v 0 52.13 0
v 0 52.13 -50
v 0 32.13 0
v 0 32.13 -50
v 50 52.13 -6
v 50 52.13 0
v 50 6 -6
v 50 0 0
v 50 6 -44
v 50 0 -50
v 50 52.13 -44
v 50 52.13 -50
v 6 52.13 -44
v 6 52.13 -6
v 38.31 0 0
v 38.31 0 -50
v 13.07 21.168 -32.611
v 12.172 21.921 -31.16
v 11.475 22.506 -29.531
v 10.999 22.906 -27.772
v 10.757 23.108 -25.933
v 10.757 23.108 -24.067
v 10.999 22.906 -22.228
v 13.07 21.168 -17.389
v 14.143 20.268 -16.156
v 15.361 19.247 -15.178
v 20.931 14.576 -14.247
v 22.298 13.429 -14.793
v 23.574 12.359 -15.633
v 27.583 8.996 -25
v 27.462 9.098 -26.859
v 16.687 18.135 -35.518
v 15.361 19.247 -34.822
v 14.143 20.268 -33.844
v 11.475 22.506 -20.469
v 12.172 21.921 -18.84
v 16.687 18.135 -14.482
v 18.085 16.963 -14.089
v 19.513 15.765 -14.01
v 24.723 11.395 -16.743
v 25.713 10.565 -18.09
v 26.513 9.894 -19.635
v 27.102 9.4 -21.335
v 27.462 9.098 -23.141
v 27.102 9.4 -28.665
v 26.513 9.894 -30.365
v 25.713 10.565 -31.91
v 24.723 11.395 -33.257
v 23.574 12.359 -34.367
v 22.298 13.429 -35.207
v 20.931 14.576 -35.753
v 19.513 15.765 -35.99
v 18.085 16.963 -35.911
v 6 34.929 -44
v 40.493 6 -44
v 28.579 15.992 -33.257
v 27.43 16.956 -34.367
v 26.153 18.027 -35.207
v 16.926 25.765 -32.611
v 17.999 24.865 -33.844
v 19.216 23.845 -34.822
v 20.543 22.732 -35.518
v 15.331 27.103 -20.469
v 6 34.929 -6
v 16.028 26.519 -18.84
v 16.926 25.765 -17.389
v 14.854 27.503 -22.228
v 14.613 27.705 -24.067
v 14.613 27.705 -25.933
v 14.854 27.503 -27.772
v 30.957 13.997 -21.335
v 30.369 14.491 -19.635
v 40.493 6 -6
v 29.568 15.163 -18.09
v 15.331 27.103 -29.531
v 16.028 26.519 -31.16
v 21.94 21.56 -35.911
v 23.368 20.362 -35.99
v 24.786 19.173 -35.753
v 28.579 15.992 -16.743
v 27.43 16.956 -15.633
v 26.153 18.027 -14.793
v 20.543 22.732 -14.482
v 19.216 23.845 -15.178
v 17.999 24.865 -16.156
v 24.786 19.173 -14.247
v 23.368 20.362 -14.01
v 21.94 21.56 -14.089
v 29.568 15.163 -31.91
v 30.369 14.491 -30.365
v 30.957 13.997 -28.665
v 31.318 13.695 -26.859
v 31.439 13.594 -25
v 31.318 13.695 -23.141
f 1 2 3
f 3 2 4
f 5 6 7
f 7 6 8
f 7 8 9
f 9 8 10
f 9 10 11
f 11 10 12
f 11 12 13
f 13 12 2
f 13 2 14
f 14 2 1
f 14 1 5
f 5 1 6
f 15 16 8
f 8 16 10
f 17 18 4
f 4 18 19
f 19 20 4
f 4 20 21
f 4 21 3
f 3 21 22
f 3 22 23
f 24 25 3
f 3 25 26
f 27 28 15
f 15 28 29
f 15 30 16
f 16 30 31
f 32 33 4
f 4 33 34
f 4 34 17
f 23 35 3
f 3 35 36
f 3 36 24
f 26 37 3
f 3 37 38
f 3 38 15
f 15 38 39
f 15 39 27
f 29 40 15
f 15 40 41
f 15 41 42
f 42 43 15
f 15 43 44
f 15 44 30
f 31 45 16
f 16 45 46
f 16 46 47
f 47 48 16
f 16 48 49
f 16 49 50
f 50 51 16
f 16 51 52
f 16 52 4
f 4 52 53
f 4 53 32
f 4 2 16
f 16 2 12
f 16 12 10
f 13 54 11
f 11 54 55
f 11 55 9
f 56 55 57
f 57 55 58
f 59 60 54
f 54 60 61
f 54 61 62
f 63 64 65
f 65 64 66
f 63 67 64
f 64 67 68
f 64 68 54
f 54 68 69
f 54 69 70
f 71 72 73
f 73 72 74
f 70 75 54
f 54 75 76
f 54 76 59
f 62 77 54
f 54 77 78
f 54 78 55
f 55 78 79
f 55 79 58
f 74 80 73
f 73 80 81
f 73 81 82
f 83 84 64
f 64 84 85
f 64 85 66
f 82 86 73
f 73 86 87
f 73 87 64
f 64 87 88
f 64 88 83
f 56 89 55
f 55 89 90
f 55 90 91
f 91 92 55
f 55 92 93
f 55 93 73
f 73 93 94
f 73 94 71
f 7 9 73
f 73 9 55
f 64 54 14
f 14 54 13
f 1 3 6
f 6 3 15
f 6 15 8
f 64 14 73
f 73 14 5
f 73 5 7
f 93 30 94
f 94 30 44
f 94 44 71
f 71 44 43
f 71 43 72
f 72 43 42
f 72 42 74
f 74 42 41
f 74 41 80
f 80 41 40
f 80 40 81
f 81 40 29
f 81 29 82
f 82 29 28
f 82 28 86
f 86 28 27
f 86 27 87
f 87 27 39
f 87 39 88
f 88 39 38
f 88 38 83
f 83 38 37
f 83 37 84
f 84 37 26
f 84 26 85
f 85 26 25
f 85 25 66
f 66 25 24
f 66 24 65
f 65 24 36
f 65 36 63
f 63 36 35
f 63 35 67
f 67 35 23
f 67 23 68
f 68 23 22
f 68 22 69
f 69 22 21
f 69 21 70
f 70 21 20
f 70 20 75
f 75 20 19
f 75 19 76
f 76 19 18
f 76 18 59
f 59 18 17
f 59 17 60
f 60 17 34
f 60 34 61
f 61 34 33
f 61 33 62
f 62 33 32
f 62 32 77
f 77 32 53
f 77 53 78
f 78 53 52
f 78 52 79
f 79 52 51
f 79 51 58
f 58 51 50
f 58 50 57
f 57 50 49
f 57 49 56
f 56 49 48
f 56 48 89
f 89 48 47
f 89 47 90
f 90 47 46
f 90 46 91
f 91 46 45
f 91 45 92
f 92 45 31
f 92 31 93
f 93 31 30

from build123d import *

# Parameters (mm, degrees)
SKETCH1_W           = 50
SKETCH1_H           = 50
BOSS_EXTRUDE1_DEPTH = 52.13
CUT_EXTRUDE1_DEPTH  = 52.13
SKETCH3_W           = 50
SKETCH3_H           = 38
CUT_EXTRUDE2_DEPTH  = 52.13
BOSS_EXTRUDE3_DEPTH = 38
SKETCH5_R           = 11
CUT_EXTRUDE3_DEPTH  = 52.13


with BuildPart() as part:
    # Sketch1 → Boss-Extrude1 (new body)
    with BuildSketch(Plane(origin=(0, 0, 0), x_dir=(1, 0, 0), z_dir=(0, 1, 0))):
        with Locations((25, 25)):
            Rectangle(SKETCH1_W, SKETCH1_H)
    extrude(amount=BOSS_EXTRUDE1_DEPTH)

    # Sketch2 → Cut-Extrude1 (cut)
    with BuildSketch(Plane.XY):
        Polygon((0, 32.13), (0, 0), (38.31009136, 0), align=None)
    extrude(amount=-CUT_EXTRUDE1_DEPTH, mode=Mode.SUBTRACT)

    # Sketch3 → Cut-Extrude2 (cut)
    with BuildSketch(Plane(origin=(0, 52.13, 0), x_dir=(1, 0, 0), z_dir=(0, 1, 0))):
        with Locations((25, 25)):
            Rectangle(SKETCH3_W, SKETCH3_H)
    extrude(amount=-CUT_EXTRUDE2_DEPTH, mode=Mode.SUBTRACT)

    # Sketch4 → Boss-Extrude3 (add)
    with BuildSketch(Plane.XY.offset(-44)):
        Polygon((6, 34.928740389), (6, 52.13), (0, 52.13), (0, 32.13), (38.31009136, 0), (50, 0), (50, 6), (40.493080835, 6), align=None)
    extrude(amount=BOSS_EXTRUDE3_DEPTH)

    # Sketch5 → Cut-Extrude3 (cut)
    with BuildSketch(Plane(origin=(15.819568381, 18.862406161, 0), x_dir=(0.766201827, -0.6426, 0), z_dir=(-0.6426, -0.766201827, 0))):
        with Locations((4.353262, -25)):
            Circle(SKETCH5_R)
    extrude(amount=-CUT_EXTRUDE3_DEPTH, mode=Mode.SUBTRACT)


solid = part.part
